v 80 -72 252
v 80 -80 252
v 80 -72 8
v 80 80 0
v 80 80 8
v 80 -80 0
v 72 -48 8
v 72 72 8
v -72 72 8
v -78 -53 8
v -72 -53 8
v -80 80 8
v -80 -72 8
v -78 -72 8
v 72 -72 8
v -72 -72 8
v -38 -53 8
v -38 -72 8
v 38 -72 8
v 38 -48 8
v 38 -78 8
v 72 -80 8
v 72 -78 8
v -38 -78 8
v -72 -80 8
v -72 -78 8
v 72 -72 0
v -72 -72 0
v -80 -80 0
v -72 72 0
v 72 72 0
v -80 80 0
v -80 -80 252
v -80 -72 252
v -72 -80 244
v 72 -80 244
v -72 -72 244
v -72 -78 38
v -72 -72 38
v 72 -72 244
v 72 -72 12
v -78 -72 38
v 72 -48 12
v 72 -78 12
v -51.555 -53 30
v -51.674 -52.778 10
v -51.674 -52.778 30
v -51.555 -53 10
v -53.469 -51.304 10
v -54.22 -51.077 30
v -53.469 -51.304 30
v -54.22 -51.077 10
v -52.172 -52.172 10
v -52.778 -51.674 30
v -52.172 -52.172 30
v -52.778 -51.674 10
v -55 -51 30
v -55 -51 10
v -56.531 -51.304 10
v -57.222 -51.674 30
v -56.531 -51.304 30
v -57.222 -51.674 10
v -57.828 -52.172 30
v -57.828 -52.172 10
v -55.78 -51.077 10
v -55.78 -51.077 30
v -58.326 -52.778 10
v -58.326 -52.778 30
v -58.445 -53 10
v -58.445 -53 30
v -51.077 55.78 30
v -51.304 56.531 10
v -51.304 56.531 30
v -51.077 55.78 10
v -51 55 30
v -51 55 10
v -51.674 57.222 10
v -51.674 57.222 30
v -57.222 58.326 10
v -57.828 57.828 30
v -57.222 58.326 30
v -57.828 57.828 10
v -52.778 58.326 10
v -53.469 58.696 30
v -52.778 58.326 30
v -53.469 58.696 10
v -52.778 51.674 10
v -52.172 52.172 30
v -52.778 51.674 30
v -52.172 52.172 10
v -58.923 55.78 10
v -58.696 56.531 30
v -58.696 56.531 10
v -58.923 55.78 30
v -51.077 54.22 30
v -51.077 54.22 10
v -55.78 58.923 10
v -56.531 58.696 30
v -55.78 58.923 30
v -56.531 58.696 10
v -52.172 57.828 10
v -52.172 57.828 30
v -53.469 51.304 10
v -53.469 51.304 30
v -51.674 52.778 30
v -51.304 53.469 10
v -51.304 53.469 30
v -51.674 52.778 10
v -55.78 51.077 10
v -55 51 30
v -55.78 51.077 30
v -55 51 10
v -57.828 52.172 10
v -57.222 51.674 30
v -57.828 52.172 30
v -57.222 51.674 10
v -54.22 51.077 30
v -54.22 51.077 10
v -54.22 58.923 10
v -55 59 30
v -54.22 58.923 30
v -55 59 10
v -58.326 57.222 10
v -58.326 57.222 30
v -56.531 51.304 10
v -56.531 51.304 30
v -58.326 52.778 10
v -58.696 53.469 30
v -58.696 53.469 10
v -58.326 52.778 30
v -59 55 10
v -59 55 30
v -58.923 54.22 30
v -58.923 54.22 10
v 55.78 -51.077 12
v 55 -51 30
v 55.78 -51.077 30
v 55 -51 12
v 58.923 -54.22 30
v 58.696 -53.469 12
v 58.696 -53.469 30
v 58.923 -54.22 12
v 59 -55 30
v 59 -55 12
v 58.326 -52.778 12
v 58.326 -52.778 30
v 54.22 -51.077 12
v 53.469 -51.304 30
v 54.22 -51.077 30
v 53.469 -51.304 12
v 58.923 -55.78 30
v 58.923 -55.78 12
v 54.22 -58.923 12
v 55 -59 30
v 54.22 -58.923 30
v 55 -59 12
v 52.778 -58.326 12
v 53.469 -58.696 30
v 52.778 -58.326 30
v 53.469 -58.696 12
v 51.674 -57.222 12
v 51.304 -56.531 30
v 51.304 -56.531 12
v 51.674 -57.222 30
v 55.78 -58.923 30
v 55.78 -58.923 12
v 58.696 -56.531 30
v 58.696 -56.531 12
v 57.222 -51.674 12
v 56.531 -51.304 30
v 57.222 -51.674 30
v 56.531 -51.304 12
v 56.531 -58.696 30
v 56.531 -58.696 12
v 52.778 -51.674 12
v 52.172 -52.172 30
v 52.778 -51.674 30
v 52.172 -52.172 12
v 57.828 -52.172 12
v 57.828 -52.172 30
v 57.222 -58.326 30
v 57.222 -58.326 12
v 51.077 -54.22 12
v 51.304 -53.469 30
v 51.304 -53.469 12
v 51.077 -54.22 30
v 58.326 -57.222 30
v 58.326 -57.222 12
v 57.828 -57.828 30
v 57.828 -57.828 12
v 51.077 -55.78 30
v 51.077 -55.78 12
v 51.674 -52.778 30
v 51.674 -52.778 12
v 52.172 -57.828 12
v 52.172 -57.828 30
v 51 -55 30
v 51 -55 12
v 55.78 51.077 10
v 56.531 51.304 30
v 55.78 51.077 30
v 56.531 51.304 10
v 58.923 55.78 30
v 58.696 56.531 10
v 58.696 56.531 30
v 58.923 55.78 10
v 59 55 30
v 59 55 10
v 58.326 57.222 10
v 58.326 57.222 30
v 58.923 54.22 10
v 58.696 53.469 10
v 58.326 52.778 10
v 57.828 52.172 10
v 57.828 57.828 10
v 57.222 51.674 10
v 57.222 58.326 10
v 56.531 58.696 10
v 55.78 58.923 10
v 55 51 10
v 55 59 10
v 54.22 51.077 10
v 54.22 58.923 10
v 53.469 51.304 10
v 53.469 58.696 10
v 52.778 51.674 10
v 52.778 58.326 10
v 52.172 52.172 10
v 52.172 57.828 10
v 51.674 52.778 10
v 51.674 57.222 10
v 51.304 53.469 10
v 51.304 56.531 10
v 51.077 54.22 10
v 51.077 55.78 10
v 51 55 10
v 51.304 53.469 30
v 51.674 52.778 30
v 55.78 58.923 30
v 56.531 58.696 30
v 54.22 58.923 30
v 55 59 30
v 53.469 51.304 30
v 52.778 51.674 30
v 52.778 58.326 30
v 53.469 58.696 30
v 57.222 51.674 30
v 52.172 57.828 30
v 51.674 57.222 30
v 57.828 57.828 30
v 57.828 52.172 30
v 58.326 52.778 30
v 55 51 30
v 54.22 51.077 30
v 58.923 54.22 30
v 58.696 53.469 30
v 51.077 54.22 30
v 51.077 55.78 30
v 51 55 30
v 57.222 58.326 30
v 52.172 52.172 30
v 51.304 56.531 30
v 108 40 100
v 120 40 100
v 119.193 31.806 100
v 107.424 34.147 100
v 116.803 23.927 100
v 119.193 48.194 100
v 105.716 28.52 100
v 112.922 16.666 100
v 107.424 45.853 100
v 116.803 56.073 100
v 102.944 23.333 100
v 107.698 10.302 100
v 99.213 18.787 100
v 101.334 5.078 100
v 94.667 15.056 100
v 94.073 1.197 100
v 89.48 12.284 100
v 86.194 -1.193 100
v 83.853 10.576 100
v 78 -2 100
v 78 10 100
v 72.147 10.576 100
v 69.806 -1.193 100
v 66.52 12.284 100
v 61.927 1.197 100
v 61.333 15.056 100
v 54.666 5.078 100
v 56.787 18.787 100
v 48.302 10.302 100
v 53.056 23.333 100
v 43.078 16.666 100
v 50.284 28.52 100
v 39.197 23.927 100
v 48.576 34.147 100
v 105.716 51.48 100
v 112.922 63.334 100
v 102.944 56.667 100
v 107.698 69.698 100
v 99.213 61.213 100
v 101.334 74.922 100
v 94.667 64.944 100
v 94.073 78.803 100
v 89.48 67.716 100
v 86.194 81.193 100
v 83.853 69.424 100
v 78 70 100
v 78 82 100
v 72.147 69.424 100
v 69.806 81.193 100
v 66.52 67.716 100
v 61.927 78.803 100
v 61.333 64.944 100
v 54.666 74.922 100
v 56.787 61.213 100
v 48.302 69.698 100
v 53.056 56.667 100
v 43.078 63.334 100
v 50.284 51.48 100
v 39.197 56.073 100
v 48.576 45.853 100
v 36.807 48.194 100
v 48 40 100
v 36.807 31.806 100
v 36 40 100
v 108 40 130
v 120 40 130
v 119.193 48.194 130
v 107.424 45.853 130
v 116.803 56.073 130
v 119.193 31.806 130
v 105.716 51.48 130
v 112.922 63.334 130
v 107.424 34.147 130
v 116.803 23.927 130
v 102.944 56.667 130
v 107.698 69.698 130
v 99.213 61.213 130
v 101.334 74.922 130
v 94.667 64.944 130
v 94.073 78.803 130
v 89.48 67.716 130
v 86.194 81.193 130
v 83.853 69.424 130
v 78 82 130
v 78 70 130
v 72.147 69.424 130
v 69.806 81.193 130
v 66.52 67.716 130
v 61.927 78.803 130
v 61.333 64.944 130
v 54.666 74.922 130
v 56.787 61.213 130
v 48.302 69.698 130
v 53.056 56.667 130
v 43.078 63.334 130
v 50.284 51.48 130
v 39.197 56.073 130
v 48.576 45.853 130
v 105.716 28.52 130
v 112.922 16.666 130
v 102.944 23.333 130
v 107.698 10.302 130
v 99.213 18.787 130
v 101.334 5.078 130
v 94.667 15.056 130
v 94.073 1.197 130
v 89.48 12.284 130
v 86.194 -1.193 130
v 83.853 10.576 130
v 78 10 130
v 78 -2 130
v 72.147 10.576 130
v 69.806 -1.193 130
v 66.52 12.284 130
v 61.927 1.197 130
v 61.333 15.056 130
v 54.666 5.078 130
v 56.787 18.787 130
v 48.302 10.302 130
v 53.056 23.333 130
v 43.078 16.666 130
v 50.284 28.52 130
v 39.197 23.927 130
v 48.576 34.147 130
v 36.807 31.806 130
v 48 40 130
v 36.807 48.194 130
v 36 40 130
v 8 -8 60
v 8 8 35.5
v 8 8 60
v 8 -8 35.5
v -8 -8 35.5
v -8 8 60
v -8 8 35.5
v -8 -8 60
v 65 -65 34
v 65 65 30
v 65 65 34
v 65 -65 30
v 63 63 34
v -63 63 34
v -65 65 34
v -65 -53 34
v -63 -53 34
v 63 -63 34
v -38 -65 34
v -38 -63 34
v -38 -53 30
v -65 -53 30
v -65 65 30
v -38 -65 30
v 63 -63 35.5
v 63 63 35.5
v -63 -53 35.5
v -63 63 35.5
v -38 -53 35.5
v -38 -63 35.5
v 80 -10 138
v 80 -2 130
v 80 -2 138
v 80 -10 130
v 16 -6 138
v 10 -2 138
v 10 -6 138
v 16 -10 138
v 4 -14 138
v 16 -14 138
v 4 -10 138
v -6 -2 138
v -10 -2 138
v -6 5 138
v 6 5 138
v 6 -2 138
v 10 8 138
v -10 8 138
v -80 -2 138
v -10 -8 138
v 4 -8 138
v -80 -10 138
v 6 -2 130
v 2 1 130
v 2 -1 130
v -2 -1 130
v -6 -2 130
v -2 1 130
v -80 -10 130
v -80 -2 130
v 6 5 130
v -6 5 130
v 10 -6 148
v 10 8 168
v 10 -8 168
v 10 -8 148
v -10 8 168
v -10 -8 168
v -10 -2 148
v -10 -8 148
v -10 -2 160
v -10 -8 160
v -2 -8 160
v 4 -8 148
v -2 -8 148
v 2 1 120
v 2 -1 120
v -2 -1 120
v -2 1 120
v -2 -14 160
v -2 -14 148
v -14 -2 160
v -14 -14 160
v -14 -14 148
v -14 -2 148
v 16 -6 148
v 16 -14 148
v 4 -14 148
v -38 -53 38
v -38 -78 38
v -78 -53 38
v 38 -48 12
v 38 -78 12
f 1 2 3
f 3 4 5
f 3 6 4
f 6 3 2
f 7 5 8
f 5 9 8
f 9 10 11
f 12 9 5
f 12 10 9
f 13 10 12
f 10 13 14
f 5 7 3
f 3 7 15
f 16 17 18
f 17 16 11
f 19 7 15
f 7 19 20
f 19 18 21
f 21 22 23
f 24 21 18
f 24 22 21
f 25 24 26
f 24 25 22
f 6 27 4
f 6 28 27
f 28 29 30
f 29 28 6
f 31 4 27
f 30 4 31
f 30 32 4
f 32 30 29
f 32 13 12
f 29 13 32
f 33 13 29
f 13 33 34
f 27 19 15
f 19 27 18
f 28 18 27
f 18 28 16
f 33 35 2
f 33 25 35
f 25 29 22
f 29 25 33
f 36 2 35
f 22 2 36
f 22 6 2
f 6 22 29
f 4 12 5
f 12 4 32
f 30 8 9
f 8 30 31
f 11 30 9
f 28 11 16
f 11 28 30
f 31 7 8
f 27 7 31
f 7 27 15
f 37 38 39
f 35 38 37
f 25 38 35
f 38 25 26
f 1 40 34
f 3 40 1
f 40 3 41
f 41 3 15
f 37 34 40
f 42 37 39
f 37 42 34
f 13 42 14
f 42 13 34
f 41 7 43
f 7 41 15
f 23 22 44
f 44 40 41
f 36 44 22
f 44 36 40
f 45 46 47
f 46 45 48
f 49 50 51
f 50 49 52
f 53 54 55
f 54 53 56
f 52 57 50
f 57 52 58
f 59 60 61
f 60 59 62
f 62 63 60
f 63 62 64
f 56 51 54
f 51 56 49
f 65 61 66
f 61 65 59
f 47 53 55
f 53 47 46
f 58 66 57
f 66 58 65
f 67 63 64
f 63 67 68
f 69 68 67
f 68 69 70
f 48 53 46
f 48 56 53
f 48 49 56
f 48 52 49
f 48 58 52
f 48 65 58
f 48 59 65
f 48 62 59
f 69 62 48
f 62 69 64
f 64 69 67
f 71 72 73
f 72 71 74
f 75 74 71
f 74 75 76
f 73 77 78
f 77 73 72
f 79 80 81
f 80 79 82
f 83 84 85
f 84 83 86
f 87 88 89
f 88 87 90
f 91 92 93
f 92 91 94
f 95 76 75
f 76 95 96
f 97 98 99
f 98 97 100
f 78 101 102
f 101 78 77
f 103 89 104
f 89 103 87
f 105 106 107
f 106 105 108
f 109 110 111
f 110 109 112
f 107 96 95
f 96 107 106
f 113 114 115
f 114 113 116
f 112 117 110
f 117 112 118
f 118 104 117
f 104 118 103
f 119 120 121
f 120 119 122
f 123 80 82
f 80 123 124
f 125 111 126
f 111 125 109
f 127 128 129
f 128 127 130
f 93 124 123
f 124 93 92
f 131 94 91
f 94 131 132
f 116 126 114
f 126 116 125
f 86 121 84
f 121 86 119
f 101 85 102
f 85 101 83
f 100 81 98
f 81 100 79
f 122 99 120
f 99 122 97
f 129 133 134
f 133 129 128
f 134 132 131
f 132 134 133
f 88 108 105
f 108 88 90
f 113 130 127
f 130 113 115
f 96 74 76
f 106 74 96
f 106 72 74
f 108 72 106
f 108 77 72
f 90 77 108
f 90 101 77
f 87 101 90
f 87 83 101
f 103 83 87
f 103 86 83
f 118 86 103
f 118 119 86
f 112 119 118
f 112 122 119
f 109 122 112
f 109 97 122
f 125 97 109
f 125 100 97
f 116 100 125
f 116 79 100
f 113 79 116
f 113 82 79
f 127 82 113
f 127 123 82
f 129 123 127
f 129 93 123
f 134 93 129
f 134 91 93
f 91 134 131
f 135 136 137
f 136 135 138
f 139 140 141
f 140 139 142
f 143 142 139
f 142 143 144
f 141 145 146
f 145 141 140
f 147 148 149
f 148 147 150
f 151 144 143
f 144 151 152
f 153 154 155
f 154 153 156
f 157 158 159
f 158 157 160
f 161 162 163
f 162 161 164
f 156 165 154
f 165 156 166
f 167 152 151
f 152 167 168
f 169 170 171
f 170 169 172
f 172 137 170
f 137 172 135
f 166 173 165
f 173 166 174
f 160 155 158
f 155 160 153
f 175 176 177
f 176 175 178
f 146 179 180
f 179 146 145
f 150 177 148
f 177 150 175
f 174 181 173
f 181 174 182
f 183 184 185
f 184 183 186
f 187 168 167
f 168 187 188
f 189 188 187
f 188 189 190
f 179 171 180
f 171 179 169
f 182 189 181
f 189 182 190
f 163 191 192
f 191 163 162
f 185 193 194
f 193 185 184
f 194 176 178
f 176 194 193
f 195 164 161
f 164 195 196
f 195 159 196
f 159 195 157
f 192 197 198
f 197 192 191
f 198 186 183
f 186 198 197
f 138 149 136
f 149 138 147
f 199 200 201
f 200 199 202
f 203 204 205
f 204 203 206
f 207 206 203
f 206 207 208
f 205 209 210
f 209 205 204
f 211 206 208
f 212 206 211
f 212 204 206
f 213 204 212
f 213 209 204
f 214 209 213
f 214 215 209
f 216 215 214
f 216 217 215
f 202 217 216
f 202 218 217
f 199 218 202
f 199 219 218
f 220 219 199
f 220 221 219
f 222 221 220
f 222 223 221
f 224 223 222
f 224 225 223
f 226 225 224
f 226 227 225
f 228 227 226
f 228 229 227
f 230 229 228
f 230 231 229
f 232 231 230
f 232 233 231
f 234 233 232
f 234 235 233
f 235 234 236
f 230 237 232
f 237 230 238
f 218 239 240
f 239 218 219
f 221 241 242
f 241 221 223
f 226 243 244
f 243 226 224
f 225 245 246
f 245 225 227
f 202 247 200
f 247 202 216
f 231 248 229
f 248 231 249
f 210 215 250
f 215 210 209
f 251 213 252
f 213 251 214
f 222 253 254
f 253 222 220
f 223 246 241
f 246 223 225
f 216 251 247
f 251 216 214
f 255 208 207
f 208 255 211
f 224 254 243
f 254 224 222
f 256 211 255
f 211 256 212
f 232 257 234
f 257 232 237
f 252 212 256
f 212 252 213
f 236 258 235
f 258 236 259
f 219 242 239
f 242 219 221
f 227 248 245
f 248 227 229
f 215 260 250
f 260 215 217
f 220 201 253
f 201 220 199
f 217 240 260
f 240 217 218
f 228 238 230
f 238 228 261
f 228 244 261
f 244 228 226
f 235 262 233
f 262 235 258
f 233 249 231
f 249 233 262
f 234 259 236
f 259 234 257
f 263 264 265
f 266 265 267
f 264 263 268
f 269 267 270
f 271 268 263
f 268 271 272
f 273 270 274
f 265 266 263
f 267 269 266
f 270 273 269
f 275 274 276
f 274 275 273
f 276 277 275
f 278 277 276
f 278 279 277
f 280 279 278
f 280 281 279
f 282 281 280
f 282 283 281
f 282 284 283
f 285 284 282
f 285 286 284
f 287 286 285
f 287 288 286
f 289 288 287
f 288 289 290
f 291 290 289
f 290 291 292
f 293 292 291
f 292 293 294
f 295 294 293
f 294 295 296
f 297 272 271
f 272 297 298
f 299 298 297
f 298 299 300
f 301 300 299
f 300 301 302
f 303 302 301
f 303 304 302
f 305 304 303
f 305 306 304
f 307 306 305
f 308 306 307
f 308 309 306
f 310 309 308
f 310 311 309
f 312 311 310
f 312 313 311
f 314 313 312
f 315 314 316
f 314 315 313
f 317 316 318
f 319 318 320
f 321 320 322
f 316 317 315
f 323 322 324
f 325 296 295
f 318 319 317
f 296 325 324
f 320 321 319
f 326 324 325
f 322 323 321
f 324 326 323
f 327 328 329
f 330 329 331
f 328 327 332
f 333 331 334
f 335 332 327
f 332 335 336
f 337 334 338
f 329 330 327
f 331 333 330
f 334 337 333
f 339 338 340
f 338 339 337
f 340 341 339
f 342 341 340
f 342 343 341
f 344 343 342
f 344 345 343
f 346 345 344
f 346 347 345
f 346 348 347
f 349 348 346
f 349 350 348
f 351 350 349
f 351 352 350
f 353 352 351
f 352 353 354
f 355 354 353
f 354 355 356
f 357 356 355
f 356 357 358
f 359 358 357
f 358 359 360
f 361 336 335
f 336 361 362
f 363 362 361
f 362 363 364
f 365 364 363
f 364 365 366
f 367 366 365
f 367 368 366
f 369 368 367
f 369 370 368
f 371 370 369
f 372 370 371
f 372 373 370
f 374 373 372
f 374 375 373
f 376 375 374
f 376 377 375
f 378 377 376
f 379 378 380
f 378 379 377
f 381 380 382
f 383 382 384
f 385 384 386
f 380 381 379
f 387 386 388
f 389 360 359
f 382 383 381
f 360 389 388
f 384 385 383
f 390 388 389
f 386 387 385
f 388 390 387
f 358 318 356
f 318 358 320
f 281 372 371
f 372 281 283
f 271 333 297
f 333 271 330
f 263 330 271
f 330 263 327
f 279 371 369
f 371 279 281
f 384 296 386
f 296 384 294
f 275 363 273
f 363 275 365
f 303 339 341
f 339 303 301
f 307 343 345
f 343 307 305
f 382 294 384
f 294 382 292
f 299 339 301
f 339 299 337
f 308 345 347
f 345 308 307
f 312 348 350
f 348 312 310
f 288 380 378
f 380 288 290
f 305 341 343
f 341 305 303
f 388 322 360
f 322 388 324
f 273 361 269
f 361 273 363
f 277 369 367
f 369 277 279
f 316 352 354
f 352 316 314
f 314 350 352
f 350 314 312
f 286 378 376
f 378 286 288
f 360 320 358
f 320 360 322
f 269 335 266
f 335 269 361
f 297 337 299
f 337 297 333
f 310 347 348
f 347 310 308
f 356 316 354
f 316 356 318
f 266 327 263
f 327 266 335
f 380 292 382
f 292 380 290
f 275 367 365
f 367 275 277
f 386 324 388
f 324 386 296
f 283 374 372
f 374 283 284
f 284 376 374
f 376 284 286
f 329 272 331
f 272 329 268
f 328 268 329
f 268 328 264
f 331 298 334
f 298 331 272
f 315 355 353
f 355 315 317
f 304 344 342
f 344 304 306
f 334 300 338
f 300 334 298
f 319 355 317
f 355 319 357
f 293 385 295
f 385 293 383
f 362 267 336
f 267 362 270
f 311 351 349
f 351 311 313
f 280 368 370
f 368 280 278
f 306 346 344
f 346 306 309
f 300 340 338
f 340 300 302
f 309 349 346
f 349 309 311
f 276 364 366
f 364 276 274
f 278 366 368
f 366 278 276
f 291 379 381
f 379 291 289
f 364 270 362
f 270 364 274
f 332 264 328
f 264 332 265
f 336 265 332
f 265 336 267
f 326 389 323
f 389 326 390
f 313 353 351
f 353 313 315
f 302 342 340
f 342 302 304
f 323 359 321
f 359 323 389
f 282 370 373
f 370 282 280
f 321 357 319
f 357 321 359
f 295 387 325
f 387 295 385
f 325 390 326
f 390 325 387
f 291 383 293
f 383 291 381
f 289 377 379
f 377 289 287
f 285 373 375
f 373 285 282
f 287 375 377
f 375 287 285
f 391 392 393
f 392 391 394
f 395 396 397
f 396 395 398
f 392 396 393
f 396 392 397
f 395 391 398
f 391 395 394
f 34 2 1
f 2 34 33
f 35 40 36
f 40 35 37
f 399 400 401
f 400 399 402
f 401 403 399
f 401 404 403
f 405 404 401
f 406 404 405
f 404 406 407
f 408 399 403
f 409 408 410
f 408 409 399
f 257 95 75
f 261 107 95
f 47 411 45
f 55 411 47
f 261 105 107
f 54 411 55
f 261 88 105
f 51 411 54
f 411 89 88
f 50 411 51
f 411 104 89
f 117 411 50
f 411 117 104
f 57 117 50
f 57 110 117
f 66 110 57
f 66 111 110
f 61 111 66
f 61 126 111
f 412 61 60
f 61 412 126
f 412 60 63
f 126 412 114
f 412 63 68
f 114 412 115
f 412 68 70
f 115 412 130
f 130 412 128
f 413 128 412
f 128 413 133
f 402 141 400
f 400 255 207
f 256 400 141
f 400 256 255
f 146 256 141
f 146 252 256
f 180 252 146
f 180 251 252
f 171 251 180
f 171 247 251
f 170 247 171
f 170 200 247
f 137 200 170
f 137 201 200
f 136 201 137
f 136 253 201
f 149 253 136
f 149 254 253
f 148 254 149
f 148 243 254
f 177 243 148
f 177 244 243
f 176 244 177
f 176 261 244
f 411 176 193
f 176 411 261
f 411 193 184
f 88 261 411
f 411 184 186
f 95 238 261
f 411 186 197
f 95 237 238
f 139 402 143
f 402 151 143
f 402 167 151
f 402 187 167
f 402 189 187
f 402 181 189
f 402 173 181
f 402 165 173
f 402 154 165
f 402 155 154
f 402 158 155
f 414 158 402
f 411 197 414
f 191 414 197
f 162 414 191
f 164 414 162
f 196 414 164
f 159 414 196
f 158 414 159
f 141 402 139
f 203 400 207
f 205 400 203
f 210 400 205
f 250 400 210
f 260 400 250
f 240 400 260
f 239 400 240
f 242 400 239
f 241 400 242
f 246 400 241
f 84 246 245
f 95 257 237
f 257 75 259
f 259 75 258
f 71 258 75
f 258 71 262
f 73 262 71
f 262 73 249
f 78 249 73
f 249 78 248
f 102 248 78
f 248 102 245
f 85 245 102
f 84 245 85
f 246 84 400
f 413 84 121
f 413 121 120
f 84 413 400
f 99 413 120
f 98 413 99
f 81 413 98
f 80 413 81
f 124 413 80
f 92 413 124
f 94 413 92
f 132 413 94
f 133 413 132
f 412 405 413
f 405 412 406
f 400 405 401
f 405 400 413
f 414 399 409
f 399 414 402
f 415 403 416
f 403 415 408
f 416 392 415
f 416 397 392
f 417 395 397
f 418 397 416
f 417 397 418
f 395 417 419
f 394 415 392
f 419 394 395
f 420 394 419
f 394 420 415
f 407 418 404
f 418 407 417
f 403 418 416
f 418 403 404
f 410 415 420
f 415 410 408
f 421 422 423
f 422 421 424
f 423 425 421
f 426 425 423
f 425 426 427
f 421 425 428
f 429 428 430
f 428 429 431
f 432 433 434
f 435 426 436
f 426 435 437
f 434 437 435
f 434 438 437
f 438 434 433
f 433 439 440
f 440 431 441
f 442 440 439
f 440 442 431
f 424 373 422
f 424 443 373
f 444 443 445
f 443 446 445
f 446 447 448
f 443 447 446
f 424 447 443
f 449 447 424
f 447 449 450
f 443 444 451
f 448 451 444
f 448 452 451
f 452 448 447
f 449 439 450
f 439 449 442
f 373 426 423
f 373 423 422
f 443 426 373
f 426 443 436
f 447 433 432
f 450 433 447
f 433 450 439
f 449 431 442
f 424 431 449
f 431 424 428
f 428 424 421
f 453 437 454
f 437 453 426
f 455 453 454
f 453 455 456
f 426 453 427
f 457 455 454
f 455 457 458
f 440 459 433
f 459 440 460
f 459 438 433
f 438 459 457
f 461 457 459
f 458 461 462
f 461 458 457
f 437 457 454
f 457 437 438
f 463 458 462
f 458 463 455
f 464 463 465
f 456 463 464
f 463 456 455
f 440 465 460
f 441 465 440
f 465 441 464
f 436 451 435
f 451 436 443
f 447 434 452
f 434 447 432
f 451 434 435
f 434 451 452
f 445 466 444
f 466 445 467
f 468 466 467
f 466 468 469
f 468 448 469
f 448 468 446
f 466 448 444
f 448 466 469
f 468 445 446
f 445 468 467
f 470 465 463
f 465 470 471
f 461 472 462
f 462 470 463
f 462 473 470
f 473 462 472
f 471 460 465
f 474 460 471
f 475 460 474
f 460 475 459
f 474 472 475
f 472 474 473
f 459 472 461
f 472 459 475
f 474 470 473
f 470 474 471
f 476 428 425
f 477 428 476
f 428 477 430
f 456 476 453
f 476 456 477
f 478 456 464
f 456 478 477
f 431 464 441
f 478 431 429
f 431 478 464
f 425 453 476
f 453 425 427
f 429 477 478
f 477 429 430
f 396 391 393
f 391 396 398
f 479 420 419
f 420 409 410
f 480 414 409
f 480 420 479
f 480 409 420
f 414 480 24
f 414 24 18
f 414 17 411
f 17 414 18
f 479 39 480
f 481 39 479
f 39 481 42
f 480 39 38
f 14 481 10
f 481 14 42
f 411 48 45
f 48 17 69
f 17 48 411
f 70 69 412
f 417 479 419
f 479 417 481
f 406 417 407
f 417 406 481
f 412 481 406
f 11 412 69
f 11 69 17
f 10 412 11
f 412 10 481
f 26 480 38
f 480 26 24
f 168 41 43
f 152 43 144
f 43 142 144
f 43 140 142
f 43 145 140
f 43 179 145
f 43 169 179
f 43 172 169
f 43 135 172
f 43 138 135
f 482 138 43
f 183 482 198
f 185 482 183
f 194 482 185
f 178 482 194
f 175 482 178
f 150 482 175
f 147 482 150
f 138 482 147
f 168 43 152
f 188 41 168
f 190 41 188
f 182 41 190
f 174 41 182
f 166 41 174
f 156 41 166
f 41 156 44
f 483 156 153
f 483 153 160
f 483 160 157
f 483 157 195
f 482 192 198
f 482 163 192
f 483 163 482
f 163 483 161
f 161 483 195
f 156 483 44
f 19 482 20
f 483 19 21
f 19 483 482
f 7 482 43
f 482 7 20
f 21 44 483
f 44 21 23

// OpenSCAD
// FDM 3D 印表機 (Ender-3 style)
$fn = 32;

// 底座框架（黑色 V-slot 鋁型材）
color([0.15, 0.15, 0.17]) {
  // 底部水平框
  translate([-80, -80, 0]) cube([160, 8, 8]);   // 前框
  translate([-80, 72, 0]) cube([160, 8, 8]);    // 後框
  translate([-80, -80, 0]) cube([8, 160, 8]);   // 左框
  translate([72, -80, 0]) cube([8, 160, 8]);    // 右框
}

// 垂直立柱（兩根）
color([0.18, 0.18, 0.20]) {
  translate([-80, -80, 0]) cube([8, 8, 250]);
  translate([72, -80, 0]) cube([8, 8, 250]);
}

// 頂部橫樑
color([0.15, 0.15, 0.17])
  translate([-80, -80, 244]) cube([160, 8, 8]);

// 熱床（加熱平台，黑色彈簧鋼板）
color([0.20, 0.20, 0.22])
  translate([-65, -65, 30]) cube([130, 130, 4]);
// 熱床 PEI 面
color([0.30, 0.28, 0.25])
  translate([-63, -63, 34]) cube([126, 126, 1.5]);
// 熱床 4 角彈簧
color([0.55, 0.55, 0.58])
  for (x = [-55, 55]) for (y = [-55, 55])
    translate([x, y, 10]) cylinder(h = 22, r = 4);

// X 軸橫樑
color([0.18, 0.18, 0.20])
  translate([-80, -10, 130]) cube([160, 8, 8]);

// 列印頭 + 噴嘴（Bowden style）
color([0.28, 0.28, 0.30])
  translate([-10, -8, 138]) cube([20, 16, 30]);
// 加熱塊
color([0.75, 0.52, 0.10])
  translate([-6, -5, 130]) cube([12, 10, 12]);
// 噴嘴
color([0.65, 0.50, 0.08])
  translate([-2, -1, 120]) cube([4, 2, 12]);
// 散熱風扇
color([0.22, 0.22, 0.25])
  translate([-14, -14, 148]) cube([12, 12, 12]);
// 吹風扇
color([0.22, 0.22, 0.25])
  translate([4, -14, 138]) cube([12, 8, 10]);

// 耗材線圈（右後方）
color([0.85, 0.30, 0.30]) {
  translate([78, 40, 100]) {
    difference() {
      cylinder(h = 30, r = 40);
      translate([0, 0, -1]) cylinder(h = 32, r = 30);
    }
    difference() {
      cylinder(h = 30, r = 42);
      translate([0, 0, -1]) cylinder(h = 32, r = 40);
    }
  }
}

// 列印中的物件（小方塊，白色）
color([0.96, 0.96, 0.96])
  translate([-8, -8, 35]) cube([16, 16, 25]);
color([0.90, 0.90, 0.92])
  for (z = [35, 40, 45, 50, 55])
    translate([-8, -8, z]) cube([16, 16, 1]);

// 電源供應器（左下）
color([0.12, 0.12, 0.14])
  translate([-78, -78, 8]) cube([40, 25, 30]);

// 控制主板（右下）
color([0.06, 0.22, 0.06])
  translate([38, -78, 8]) cube([34, 30, 4]);
